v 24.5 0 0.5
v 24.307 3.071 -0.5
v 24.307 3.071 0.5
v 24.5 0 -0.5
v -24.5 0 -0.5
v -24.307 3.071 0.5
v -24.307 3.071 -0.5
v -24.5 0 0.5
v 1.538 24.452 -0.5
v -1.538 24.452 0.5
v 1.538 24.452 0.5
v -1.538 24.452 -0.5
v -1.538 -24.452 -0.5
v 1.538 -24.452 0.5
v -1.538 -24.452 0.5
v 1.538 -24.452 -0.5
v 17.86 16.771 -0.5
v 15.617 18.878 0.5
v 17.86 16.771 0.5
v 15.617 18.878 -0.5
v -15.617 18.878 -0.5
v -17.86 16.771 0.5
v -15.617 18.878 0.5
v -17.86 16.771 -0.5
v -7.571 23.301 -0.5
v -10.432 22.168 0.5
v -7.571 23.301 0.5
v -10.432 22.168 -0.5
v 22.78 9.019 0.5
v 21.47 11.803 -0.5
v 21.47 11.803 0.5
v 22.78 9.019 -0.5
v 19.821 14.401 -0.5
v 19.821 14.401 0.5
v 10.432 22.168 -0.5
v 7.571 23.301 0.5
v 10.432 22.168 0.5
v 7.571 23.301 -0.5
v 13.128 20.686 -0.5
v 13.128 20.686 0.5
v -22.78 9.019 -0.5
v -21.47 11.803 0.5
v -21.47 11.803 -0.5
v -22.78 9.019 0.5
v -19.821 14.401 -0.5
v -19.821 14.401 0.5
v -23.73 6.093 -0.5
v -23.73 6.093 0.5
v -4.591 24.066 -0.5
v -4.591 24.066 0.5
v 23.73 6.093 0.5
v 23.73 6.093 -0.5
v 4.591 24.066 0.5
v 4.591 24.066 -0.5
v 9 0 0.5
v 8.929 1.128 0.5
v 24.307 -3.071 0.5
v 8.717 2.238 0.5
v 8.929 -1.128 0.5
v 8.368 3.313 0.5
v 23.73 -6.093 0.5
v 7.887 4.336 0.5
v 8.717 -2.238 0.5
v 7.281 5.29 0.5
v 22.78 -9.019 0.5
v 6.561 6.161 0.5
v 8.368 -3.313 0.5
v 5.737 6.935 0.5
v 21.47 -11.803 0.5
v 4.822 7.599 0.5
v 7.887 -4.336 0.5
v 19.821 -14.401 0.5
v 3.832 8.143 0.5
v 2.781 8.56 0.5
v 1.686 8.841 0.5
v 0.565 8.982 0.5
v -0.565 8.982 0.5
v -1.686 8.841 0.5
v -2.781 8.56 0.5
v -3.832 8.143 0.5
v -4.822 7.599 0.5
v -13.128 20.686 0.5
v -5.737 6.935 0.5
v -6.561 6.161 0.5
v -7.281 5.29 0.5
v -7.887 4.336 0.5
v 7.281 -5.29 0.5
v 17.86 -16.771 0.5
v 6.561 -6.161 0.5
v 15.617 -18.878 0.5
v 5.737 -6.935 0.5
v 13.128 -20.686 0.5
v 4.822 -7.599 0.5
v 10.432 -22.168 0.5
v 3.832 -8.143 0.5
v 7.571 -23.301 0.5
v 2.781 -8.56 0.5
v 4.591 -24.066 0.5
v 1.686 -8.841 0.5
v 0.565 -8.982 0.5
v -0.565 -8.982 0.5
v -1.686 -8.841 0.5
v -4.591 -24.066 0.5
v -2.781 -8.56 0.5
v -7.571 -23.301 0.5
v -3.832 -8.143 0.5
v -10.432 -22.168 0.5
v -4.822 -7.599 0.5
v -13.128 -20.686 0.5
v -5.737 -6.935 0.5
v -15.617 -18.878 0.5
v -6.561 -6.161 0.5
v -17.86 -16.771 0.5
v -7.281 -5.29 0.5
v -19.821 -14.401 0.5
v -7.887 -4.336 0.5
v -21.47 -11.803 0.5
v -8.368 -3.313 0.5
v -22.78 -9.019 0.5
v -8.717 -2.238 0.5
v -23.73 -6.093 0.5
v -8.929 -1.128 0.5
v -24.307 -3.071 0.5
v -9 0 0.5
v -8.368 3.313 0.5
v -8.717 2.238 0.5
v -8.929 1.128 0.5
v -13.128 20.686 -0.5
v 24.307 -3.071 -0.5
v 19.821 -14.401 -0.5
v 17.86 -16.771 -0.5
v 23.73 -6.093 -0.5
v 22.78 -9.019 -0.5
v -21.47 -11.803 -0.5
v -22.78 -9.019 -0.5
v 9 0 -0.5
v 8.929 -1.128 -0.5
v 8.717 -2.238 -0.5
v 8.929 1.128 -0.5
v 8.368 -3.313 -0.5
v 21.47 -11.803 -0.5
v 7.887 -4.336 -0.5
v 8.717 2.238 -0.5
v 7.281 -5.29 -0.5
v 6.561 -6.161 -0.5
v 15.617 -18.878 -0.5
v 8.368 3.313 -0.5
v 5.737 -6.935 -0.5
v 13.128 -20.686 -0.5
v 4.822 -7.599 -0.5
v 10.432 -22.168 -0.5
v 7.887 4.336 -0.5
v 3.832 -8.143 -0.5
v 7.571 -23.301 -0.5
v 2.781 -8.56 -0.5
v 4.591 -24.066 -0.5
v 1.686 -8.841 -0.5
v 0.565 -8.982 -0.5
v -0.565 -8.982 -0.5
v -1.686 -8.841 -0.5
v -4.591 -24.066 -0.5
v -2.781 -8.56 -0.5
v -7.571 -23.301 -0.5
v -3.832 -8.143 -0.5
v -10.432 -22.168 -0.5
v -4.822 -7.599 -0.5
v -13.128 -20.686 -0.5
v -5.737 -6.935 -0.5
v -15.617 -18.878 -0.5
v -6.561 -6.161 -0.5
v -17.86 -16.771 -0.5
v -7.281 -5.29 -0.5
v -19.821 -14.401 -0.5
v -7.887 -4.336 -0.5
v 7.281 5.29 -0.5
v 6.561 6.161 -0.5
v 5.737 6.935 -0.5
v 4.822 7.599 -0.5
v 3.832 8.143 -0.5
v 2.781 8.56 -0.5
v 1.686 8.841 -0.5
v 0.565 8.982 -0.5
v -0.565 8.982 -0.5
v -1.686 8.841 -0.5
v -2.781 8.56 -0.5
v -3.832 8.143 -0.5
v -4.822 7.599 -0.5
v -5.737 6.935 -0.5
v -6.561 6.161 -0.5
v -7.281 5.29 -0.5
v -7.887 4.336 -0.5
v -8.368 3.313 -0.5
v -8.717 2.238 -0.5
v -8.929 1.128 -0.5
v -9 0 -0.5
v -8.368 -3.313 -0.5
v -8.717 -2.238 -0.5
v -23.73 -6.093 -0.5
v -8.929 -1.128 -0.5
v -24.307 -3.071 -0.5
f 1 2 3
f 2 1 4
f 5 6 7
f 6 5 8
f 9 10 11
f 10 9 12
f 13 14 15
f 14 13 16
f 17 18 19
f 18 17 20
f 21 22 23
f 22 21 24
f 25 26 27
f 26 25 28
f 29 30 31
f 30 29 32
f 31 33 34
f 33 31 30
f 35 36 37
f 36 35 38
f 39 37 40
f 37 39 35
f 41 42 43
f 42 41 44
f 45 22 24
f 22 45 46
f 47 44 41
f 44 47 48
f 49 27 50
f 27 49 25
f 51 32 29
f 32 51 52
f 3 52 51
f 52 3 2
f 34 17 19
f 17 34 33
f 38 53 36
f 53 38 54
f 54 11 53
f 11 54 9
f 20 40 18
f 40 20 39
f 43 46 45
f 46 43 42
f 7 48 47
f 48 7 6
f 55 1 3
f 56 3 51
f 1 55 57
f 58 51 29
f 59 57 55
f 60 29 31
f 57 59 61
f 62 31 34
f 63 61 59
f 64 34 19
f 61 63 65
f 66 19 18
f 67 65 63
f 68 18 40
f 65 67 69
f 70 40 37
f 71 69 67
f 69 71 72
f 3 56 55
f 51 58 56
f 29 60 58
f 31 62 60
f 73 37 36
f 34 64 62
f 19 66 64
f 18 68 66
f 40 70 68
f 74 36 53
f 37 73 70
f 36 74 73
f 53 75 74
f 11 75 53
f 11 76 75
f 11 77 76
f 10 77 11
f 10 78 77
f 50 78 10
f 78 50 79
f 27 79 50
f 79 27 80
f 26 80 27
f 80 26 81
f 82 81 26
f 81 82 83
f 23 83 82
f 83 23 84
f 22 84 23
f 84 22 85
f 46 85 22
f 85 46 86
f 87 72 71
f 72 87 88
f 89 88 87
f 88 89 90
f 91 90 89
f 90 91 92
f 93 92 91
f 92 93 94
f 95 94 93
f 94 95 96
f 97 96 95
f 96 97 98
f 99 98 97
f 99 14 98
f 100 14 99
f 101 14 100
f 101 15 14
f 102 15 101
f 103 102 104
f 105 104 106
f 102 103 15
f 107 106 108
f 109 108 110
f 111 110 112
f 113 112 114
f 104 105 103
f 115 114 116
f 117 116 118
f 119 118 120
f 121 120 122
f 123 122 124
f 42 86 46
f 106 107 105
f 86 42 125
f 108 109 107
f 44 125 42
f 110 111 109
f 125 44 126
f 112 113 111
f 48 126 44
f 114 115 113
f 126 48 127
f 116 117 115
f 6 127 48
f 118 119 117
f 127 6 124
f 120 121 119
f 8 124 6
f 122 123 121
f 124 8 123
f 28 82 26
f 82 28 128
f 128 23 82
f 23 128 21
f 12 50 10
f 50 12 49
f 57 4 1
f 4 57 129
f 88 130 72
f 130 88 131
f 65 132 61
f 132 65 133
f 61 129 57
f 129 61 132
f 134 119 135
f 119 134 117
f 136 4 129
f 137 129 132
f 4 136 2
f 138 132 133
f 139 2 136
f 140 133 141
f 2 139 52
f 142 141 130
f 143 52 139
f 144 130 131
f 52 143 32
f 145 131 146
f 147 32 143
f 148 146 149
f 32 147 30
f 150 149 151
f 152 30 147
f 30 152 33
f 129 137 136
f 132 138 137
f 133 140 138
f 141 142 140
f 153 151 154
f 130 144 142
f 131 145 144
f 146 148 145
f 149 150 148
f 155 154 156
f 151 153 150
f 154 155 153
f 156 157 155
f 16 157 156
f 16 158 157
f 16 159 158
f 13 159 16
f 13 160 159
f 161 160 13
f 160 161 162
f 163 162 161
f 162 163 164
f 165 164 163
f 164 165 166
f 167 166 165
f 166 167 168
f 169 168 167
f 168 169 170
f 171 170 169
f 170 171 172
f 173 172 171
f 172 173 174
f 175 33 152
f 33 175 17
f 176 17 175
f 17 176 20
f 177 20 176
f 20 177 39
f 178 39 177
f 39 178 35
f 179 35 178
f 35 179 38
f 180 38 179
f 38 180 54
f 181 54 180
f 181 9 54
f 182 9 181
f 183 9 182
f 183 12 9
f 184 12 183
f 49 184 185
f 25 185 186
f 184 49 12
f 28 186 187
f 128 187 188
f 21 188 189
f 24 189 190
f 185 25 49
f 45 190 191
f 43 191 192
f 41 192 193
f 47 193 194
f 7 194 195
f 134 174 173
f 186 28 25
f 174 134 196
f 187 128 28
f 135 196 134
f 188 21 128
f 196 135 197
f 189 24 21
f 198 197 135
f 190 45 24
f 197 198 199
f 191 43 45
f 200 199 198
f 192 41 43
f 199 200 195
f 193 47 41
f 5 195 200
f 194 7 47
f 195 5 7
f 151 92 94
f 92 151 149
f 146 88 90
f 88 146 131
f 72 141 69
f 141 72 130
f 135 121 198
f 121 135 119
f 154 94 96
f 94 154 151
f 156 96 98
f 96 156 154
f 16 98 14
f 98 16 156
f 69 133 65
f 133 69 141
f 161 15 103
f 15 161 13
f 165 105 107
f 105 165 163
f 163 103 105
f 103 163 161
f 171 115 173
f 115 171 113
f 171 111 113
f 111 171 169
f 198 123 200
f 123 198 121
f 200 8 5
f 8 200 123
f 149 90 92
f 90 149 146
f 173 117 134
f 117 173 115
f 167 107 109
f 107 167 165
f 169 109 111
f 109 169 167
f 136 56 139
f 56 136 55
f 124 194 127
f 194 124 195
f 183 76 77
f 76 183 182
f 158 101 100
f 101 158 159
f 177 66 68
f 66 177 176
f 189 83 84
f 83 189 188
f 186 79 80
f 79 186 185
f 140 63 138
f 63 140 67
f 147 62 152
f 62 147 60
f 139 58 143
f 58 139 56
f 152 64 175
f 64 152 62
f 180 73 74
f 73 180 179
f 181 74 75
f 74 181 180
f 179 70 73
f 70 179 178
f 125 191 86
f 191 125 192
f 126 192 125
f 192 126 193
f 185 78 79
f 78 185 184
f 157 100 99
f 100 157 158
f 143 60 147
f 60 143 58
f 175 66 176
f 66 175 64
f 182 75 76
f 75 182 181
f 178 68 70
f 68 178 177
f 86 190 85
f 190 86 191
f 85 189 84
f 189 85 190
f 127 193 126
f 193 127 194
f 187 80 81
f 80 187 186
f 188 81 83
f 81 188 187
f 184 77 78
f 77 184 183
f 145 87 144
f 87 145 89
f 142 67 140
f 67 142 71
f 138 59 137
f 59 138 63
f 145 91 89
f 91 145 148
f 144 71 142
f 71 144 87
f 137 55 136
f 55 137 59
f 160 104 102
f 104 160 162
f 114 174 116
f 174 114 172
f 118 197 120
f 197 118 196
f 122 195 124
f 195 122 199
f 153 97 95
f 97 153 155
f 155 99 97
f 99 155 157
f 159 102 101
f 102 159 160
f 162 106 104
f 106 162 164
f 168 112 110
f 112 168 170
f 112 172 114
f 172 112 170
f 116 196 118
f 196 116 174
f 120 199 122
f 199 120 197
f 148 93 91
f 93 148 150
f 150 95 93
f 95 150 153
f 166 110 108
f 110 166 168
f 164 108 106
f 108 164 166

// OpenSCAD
$fn = 50;


difference() {
	union() {
		translate(v = [0, 0, -0.5000000000]) {
			cylinder(h = 1, r = 24.5000000000);
		}
	}
	union() {
		translate(v = [0, 0, -100.0000000000]) {
			cylinder(h = 200, r = 9);
		}
	}
}
